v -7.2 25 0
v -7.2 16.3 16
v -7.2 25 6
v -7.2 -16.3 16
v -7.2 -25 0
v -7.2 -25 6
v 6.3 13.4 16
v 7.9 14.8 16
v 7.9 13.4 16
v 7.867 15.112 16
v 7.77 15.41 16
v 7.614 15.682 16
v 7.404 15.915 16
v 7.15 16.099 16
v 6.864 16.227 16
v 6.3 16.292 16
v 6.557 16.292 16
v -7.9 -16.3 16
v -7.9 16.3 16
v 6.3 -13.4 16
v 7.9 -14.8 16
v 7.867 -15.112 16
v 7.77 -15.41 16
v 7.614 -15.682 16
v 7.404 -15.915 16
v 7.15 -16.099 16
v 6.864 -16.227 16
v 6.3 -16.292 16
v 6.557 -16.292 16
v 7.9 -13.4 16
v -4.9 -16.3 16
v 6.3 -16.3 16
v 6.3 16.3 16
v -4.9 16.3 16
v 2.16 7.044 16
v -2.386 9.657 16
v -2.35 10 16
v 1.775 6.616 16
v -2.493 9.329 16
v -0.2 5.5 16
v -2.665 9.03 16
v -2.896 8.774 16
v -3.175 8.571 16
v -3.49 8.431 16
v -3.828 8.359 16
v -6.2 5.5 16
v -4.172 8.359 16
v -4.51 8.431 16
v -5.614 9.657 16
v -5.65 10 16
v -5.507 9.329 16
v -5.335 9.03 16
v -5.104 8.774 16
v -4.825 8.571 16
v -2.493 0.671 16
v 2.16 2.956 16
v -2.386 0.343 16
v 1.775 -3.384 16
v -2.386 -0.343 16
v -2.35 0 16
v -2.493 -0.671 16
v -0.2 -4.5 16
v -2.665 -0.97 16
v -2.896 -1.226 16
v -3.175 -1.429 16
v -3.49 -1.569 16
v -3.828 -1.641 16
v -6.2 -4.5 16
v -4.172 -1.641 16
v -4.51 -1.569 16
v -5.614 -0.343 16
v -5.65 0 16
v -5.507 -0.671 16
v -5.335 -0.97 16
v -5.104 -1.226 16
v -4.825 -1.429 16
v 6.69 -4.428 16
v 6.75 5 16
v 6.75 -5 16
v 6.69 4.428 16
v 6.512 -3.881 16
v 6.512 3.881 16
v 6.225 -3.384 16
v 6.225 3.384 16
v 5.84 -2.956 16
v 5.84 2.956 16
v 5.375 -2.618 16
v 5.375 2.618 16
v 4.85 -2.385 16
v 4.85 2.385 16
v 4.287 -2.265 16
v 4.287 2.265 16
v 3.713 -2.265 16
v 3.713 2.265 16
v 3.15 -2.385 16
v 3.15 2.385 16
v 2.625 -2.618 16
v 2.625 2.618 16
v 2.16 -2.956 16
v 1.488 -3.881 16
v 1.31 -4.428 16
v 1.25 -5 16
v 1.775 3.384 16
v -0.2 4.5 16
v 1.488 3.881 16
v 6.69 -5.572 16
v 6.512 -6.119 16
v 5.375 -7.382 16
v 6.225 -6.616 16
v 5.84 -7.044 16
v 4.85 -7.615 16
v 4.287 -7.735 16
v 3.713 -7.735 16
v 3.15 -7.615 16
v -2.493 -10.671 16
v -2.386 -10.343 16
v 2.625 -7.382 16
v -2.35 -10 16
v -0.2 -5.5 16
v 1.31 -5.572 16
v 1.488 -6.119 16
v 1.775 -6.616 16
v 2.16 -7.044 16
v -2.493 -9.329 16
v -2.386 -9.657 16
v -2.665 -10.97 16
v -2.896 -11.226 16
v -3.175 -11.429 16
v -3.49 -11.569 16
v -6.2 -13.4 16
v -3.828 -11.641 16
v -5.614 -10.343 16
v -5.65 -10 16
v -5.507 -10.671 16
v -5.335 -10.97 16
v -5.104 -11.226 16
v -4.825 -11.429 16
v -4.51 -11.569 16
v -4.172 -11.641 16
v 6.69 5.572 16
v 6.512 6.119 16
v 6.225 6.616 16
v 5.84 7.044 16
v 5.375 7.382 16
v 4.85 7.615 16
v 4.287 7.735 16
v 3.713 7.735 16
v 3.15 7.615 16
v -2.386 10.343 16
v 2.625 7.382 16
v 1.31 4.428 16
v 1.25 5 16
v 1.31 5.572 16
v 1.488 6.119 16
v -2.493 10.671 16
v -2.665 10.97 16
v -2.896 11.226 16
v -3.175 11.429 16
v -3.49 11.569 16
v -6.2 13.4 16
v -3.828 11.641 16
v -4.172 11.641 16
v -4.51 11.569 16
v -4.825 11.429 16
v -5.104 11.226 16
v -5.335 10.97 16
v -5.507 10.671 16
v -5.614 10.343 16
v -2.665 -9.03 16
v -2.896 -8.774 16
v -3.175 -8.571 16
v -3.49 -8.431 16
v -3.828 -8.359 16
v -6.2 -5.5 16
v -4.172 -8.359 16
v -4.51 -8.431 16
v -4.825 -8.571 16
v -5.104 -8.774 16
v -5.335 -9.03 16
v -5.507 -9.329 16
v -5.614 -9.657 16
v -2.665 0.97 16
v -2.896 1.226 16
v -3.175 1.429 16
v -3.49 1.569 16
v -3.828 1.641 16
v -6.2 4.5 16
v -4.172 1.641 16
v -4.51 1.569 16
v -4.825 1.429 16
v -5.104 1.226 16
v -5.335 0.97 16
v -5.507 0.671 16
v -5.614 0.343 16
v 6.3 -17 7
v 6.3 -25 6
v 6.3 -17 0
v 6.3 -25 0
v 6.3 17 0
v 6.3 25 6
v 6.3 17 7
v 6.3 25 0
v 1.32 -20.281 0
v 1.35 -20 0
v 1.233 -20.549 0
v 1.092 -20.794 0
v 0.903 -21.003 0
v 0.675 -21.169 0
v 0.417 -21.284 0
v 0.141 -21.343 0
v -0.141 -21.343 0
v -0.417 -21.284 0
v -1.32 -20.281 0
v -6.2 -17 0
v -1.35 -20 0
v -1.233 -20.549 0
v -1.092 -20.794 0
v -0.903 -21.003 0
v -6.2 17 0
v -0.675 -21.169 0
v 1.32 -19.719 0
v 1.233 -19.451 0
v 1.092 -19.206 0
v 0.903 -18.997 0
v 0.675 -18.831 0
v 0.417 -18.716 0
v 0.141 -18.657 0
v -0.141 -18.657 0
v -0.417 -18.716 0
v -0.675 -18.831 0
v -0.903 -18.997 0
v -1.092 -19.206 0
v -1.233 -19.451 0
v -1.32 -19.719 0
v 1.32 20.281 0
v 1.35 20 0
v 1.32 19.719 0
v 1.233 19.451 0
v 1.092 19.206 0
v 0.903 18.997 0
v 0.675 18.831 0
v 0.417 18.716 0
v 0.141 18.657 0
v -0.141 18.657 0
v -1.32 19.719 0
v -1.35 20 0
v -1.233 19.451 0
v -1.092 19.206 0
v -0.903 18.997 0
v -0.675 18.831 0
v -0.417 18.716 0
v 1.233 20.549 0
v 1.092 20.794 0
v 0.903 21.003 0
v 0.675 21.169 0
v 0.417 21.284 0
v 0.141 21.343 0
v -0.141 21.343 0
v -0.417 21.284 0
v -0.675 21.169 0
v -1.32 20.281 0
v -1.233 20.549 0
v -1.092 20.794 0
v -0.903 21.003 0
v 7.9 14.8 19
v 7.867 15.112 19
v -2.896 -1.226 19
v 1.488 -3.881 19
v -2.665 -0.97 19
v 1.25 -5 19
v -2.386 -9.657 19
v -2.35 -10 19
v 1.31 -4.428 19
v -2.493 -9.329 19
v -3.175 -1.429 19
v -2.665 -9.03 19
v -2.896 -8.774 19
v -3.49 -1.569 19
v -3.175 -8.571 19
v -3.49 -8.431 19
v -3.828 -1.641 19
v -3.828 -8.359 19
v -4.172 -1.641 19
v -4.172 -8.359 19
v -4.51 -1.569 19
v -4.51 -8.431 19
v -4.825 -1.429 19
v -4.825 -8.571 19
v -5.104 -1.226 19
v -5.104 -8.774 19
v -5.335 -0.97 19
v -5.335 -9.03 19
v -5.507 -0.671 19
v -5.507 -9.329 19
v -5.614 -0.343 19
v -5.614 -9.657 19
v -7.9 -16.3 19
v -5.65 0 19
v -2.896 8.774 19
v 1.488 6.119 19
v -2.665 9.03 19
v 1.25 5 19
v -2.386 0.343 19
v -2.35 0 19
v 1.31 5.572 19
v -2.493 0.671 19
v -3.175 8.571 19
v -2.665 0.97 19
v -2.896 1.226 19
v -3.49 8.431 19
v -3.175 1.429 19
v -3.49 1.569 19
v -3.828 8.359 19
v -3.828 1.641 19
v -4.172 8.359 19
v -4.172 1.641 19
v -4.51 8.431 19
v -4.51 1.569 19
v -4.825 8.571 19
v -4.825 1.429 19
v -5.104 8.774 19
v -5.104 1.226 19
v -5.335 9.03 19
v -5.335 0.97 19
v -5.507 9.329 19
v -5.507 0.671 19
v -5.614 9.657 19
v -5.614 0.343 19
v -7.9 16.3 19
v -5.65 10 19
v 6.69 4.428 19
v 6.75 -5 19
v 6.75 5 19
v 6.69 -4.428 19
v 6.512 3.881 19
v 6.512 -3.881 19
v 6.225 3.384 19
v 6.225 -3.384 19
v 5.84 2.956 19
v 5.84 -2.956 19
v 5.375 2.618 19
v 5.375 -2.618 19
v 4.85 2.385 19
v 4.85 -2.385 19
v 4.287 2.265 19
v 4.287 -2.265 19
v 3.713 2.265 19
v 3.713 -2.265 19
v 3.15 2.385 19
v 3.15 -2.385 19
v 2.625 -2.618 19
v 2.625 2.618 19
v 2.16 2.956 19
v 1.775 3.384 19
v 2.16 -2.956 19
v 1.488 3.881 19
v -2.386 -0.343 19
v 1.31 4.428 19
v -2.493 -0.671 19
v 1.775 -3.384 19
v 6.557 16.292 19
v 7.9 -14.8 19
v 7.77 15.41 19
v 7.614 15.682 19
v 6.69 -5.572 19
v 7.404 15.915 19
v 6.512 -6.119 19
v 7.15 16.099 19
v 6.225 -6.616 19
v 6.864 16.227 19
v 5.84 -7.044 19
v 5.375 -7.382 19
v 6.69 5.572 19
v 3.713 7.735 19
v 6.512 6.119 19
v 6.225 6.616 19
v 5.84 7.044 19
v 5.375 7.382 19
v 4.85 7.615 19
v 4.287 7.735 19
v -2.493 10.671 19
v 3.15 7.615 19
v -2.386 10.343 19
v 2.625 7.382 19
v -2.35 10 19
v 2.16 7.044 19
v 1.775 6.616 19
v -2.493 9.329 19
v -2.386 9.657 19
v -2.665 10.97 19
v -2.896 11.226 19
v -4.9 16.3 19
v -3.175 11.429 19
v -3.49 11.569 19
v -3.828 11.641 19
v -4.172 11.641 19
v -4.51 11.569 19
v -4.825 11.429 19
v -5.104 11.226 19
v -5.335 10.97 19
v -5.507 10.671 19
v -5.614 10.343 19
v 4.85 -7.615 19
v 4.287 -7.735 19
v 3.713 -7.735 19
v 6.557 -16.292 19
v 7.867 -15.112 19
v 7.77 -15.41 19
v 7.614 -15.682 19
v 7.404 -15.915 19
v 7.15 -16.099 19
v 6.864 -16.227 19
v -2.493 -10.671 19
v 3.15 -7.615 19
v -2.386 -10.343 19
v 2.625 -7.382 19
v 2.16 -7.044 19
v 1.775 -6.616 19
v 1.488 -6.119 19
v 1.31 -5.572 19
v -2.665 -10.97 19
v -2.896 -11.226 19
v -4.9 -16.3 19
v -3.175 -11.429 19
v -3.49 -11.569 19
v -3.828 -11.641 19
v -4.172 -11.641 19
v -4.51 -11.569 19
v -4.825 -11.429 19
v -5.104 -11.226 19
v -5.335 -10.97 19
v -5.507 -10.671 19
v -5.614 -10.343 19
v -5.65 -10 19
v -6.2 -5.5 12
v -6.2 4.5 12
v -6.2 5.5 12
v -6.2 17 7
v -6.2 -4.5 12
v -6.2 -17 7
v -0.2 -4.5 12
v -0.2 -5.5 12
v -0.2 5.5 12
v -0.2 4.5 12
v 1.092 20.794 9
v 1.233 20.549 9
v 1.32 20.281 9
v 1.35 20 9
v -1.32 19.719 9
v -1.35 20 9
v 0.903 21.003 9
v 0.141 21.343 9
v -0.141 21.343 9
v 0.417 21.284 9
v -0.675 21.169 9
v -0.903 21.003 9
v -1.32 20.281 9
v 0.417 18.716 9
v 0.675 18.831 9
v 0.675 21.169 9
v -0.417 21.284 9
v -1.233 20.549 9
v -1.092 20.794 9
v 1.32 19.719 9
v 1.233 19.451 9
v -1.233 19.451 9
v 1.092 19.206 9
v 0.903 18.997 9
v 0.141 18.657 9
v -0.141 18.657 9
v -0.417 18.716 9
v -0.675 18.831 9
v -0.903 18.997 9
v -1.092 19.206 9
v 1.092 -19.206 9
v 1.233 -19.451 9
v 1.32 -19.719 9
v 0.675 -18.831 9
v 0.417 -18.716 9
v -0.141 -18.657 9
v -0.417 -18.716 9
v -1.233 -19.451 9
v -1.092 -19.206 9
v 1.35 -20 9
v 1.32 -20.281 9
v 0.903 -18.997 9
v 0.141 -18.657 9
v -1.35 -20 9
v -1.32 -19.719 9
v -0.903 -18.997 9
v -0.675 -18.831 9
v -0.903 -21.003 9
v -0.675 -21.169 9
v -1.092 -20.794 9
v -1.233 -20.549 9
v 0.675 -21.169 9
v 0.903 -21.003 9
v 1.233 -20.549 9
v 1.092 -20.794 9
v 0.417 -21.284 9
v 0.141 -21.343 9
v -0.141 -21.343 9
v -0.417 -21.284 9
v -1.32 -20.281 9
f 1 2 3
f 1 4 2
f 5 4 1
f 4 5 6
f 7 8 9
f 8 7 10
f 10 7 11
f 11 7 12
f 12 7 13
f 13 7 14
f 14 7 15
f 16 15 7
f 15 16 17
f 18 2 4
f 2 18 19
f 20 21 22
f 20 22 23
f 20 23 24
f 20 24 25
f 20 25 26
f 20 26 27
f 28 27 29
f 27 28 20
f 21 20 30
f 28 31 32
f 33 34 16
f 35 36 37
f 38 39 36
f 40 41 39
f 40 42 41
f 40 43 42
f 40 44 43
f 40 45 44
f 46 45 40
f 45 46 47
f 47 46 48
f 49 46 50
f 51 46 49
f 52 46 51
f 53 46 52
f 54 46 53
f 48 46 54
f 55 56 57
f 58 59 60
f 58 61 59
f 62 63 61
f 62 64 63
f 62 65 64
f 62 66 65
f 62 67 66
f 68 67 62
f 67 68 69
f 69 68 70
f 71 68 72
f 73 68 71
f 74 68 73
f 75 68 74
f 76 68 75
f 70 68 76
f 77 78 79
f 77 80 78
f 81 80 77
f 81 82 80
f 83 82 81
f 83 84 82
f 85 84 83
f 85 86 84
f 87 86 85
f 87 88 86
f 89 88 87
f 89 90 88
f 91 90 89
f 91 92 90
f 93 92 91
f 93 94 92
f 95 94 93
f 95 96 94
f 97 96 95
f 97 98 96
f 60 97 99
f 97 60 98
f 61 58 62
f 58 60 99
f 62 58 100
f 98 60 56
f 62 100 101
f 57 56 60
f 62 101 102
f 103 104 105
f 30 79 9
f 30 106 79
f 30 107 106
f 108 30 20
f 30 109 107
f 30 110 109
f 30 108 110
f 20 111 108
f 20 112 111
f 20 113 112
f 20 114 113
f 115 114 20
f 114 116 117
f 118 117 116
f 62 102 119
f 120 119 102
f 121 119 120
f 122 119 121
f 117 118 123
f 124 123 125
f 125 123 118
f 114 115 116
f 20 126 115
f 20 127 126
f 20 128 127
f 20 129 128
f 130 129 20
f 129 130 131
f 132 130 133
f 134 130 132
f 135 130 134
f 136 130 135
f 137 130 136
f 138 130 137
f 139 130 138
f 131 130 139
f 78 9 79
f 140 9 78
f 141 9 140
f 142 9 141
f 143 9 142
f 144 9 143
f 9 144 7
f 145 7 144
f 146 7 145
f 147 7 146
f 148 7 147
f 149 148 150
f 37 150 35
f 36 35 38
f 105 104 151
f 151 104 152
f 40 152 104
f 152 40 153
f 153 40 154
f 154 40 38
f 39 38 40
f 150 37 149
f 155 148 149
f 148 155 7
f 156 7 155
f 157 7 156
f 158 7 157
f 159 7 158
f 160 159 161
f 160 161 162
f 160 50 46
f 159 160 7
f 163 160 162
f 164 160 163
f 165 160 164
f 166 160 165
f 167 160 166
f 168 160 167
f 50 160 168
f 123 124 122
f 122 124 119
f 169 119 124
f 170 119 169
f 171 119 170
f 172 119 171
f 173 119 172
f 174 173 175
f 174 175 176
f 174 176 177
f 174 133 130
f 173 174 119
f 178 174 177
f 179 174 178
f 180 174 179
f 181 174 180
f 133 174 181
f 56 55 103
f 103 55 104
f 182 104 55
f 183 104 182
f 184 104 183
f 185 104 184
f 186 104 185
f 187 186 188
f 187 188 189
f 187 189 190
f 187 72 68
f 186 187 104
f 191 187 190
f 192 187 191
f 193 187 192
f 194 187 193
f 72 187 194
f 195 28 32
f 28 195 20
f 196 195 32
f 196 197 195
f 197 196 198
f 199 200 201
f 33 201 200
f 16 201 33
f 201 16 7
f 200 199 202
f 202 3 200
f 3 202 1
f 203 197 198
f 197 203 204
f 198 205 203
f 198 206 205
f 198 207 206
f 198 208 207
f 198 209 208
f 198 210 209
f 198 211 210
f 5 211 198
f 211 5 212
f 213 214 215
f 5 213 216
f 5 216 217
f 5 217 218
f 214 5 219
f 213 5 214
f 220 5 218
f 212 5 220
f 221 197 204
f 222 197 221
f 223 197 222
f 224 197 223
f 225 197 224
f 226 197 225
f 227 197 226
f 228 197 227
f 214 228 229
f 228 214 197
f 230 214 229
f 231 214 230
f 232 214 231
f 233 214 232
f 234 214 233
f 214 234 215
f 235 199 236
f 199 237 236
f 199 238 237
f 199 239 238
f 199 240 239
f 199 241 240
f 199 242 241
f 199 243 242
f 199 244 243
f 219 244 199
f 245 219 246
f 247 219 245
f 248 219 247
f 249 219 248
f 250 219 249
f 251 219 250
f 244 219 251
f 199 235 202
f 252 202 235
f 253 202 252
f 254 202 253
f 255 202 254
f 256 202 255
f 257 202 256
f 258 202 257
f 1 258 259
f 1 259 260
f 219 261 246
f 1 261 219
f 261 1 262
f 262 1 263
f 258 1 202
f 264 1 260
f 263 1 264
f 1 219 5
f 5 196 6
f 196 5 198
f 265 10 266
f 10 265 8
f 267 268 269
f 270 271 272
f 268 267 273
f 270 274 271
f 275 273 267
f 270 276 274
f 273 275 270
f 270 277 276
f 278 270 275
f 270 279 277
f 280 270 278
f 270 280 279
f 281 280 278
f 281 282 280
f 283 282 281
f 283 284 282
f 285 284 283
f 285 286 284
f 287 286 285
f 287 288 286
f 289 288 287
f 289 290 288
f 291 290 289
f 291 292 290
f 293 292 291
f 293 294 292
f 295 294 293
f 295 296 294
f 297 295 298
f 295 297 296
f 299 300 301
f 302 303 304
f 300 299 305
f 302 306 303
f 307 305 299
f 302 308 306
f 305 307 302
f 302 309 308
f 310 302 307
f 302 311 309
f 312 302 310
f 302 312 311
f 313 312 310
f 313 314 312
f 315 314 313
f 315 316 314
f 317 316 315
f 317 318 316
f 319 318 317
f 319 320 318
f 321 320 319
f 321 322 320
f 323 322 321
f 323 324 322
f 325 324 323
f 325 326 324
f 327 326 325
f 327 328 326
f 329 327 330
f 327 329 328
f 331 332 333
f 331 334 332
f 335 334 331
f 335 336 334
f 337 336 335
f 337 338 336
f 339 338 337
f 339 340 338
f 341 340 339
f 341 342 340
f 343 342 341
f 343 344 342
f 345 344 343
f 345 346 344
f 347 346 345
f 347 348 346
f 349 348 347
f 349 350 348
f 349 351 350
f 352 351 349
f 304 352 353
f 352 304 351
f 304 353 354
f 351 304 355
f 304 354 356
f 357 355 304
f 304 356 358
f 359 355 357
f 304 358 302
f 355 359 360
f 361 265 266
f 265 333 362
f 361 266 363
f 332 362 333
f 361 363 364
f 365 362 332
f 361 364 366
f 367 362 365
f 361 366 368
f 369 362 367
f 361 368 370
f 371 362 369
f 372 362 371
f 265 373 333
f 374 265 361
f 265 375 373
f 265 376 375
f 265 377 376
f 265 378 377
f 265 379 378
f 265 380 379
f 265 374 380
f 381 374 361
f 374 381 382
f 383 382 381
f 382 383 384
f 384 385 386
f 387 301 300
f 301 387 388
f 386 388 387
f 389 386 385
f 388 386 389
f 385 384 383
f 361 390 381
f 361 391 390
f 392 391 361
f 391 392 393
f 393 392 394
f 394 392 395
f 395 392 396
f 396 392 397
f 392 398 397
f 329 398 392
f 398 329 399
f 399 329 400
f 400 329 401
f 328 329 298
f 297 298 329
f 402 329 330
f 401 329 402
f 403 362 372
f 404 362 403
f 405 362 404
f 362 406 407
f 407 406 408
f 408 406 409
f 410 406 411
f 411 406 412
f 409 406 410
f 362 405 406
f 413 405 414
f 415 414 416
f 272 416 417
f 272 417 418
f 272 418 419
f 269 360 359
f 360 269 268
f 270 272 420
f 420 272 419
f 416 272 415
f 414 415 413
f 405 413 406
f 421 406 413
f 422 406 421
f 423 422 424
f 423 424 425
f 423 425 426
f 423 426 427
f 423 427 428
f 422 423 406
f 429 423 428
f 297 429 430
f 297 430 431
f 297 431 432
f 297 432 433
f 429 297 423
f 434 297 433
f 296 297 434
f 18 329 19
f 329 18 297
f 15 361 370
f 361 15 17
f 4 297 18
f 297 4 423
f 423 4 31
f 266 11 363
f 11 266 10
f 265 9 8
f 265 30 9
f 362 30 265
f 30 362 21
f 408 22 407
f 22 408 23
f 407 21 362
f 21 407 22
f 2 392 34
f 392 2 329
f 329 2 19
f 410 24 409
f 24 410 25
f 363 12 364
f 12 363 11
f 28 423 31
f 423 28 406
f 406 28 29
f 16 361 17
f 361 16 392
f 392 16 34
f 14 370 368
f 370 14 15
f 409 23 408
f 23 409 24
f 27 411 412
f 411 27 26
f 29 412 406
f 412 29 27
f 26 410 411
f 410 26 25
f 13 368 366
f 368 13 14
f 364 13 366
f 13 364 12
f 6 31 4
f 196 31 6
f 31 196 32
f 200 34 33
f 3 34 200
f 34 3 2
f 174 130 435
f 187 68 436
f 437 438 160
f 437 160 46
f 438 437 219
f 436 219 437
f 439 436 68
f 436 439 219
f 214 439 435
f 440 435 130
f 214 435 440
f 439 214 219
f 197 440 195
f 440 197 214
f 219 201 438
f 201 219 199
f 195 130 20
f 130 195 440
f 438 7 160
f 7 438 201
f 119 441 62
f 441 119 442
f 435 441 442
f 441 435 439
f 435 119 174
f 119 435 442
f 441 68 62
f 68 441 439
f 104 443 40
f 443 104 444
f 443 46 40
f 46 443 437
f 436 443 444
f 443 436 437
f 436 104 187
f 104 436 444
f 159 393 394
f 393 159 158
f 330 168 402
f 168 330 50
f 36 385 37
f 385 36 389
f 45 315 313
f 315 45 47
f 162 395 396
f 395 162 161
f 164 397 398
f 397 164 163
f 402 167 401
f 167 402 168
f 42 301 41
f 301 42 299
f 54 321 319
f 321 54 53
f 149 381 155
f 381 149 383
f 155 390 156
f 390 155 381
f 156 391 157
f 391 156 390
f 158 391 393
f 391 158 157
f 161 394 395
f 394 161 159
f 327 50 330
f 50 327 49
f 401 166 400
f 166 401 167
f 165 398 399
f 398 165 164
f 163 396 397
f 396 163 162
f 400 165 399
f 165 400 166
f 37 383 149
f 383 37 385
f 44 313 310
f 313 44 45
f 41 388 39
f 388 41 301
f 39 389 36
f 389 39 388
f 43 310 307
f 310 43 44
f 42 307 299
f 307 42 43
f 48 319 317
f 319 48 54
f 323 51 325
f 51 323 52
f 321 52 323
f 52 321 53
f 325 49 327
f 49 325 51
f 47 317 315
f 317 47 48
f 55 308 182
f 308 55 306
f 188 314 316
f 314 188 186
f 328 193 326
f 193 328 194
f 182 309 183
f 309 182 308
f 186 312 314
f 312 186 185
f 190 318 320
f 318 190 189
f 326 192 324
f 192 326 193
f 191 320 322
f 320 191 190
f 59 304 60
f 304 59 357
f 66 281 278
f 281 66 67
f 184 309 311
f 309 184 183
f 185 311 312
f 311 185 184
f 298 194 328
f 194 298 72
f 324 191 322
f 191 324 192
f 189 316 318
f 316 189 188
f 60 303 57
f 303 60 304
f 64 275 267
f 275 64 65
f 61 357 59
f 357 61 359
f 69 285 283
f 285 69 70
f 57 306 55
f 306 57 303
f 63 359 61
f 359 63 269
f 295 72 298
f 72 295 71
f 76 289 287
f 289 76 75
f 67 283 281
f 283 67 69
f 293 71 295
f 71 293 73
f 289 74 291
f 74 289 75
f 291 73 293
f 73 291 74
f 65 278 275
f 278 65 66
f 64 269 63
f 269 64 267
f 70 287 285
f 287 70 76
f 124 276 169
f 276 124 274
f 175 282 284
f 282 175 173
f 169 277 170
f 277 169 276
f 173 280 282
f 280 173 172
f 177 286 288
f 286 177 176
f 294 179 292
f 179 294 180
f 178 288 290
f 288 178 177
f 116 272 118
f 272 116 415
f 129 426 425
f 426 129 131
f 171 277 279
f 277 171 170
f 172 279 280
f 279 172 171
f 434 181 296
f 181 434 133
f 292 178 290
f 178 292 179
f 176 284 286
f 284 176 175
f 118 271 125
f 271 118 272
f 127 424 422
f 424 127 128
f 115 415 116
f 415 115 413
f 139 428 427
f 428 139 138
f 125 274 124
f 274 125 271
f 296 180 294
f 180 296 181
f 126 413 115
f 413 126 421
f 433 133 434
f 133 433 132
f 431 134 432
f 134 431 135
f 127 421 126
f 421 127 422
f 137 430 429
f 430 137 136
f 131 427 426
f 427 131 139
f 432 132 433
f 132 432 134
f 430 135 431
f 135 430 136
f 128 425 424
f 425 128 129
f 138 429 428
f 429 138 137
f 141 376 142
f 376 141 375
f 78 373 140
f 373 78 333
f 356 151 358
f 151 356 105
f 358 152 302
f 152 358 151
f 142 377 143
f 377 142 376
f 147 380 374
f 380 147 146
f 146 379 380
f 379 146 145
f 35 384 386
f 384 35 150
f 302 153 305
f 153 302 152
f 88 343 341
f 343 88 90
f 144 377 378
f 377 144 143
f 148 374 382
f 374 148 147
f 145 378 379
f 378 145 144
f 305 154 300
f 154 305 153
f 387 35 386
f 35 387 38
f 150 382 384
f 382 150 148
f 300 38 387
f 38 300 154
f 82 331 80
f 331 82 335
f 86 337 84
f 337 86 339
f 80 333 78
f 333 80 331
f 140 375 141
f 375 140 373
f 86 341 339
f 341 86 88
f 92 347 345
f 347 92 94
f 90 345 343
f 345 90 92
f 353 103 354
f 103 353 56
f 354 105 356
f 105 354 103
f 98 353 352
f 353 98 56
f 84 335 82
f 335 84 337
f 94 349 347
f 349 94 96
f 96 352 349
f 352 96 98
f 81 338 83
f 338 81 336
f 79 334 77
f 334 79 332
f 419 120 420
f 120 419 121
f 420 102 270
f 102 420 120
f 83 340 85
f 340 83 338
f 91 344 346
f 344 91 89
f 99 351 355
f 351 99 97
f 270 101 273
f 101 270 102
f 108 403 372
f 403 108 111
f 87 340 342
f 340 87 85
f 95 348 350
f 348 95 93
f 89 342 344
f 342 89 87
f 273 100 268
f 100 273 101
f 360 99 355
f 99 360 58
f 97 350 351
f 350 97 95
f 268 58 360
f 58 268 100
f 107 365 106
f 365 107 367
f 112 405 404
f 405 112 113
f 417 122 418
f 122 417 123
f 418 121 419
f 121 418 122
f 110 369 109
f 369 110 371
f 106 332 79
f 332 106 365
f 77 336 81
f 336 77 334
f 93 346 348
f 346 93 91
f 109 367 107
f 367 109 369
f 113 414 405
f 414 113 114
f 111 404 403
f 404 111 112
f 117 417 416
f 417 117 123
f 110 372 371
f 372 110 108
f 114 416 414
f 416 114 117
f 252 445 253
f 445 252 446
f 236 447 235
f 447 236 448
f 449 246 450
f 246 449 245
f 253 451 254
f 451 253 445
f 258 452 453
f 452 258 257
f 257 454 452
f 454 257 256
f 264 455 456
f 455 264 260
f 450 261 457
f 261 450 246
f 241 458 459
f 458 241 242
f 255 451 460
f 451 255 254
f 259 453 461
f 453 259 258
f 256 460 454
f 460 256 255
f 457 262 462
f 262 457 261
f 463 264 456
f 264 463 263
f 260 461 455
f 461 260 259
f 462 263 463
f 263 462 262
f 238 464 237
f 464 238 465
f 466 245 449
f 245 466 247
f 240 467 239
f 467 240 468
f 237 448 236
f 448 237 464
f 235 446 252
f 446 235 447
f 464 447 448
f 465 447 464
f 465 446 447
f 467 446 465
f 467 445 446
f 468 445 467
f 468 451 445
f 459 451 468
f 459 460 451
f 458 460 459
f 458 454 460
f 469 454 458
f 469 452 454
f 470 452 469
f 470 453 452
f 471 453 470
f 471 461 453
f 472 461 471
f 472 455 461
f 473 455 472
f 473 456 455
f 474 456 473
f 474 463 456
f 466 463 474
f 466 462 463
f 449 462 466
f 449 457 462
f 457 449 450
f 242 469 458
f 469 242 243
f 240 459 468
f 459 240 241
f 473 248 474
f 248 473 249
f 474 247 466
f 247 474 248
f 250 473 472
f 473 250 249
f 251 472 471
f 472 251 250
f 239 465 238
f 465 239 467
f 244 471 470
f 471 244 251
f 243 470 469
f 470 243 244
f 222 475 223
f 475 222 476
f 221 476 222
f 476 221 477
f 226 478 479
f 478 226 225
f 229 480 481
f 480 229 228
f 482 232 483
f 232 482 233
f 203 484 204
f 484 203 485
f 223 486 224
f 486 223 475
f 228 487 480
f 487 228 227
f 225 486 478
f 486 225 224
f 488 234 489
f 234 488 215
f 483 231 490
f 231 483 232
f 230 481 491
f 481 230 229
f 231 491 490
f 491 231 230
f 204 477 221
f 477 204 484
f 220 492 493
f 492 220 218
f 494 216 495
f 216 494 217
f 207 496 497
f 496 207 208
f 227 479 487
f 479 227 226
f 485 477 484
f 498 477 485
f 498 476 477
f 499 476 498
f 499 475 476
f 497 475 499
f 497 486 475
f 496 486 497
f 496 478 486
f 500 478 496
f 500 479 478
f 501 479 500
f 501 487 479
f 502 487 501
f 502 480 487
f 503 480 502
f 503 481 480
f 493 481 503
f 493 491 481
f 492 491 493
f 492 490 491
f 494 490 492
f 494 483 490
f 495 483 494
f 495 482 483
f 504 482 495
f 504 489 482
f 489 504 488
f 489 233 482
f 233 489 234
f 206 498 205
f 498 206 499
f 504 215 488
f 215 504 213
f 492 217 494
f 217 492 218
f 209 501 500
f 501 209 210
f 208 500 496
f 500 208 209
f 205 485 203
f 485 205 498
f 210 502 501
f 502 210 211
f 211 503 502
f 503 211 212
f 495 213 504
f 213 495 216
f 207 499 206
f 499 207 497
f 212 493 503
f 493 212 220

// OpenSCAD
width = 15.8;
height_bottom = 50.0;
height_top = 32.6;
depth_total = 19.0;
depth_top = 3.0;
led_diameter = 3.3;
button_diameter = 5.5;

led1_pos = [-4,10];
led2_pos = [-4,0];
led3_pos = [-4,-10];
button1_pos = [4,5];
button2_pos = [4,-5];
pot_pos = [4,10];
hole1_pos = [0,20];
hole2_pos = [0,-20];

$fs = 0.01;

module prism(l, w, h){
    polyhedron(
        points=[[0,0,0], [l,0,0], [l,w,0], [0,w,0], [0,w,h], [l,w,h]],
        faces=[[0,1,2,3],[5,4,3,2],[0,4,5,1],[0,3,4],[5,2,1]]
    );
}
       
module body() {
    color("gray") {
        difference() {
            union() {
                translate([(-width/2)+0.7,-height_bottom/2,0]) {
                    cube([width-2.3,height_bottom,depth_total-depth_top]);
                }
                hull() {
                    translate([(width/2)-1.5,(height_top/2)-1.5,depth_total-depth_top]) {
                        cylinder(h=depth_top,d=3);
                    }
                    translate([(width/2)-1.5,(-height_top/2)+1.5,depth_total-depth_top]) {
                        cylinder(h=depth_top,d=3);
                    }
                    translate([-width/2,(height_top/2)-3,depth_total-depth_top]) {
                        cube([3,3,depth_top]);
                    }
                    translate([-width/2,-height_top/2,depth_total-depth_top]) {
                        cube([3,3,depth_top]);
                    }
                }
            }
            translate([-width,-height_top/2,depth_total-depth_top]) {
                rotate([180,0,0]) {
                    prism(2*width,(height_bottom-height_top)/2,10);
                }
            }
            translate([width,height_top/2,depth_total-depth_top]) {
                rotate([180,0,180]) {
                    prism(2*width,(height_bottom-height_top)/2,10);
                }
            }
        }
    }
}

module led(pos) {
    translate([pos.x,pos.y,-1]) {
        cylinder(depth_total+2,d=led_diameter);
    }
}

module button(pos) {
    translate([pos.x,pos.y,-1]) {
        cylinder(depth_total+2,d=button_diameter);
    }
}

module hole(pos) {
    translate([pos.x,pos.y,-1]) {
        cylinder(10,d=2.7);
    }
}

module cutout() {
    difference() {
        translate([(-width/2)+1.7,(-height_bottom/2)+8,0]) {
            cube([width,height_bottom-16,depth_total-depth_top]);
        }
        translate([-width/2,(-height_bottom/2)+12,depth_total-2]) {
            rotate([180,0,0]) {
                prism(width,4,10);
            }
        }
        translate([width/2,(height_bottom/2)-12,depth_total-2]) {
            rotate([180,0,180]) {
                prism(width,4,10);
            }
        }
        translate([(-width/2)+1.7,-5.5,12]) {
            cube([6,1,depth_total-depth_top-12]);
        }
        translate([(-width/2)+1.7,4.5,12]) {
            cube([6,1,depth_total-depth_top-12]);
        }
    }
}

difference() {
    body();
    led(led1_pos);
    led(led2_pos);
    led(led3_pos);
    button(button1_pos);
    button(button2_pos);
    hole(hole1_pos);
    hole(hole2_pos);
    cutout();
}
